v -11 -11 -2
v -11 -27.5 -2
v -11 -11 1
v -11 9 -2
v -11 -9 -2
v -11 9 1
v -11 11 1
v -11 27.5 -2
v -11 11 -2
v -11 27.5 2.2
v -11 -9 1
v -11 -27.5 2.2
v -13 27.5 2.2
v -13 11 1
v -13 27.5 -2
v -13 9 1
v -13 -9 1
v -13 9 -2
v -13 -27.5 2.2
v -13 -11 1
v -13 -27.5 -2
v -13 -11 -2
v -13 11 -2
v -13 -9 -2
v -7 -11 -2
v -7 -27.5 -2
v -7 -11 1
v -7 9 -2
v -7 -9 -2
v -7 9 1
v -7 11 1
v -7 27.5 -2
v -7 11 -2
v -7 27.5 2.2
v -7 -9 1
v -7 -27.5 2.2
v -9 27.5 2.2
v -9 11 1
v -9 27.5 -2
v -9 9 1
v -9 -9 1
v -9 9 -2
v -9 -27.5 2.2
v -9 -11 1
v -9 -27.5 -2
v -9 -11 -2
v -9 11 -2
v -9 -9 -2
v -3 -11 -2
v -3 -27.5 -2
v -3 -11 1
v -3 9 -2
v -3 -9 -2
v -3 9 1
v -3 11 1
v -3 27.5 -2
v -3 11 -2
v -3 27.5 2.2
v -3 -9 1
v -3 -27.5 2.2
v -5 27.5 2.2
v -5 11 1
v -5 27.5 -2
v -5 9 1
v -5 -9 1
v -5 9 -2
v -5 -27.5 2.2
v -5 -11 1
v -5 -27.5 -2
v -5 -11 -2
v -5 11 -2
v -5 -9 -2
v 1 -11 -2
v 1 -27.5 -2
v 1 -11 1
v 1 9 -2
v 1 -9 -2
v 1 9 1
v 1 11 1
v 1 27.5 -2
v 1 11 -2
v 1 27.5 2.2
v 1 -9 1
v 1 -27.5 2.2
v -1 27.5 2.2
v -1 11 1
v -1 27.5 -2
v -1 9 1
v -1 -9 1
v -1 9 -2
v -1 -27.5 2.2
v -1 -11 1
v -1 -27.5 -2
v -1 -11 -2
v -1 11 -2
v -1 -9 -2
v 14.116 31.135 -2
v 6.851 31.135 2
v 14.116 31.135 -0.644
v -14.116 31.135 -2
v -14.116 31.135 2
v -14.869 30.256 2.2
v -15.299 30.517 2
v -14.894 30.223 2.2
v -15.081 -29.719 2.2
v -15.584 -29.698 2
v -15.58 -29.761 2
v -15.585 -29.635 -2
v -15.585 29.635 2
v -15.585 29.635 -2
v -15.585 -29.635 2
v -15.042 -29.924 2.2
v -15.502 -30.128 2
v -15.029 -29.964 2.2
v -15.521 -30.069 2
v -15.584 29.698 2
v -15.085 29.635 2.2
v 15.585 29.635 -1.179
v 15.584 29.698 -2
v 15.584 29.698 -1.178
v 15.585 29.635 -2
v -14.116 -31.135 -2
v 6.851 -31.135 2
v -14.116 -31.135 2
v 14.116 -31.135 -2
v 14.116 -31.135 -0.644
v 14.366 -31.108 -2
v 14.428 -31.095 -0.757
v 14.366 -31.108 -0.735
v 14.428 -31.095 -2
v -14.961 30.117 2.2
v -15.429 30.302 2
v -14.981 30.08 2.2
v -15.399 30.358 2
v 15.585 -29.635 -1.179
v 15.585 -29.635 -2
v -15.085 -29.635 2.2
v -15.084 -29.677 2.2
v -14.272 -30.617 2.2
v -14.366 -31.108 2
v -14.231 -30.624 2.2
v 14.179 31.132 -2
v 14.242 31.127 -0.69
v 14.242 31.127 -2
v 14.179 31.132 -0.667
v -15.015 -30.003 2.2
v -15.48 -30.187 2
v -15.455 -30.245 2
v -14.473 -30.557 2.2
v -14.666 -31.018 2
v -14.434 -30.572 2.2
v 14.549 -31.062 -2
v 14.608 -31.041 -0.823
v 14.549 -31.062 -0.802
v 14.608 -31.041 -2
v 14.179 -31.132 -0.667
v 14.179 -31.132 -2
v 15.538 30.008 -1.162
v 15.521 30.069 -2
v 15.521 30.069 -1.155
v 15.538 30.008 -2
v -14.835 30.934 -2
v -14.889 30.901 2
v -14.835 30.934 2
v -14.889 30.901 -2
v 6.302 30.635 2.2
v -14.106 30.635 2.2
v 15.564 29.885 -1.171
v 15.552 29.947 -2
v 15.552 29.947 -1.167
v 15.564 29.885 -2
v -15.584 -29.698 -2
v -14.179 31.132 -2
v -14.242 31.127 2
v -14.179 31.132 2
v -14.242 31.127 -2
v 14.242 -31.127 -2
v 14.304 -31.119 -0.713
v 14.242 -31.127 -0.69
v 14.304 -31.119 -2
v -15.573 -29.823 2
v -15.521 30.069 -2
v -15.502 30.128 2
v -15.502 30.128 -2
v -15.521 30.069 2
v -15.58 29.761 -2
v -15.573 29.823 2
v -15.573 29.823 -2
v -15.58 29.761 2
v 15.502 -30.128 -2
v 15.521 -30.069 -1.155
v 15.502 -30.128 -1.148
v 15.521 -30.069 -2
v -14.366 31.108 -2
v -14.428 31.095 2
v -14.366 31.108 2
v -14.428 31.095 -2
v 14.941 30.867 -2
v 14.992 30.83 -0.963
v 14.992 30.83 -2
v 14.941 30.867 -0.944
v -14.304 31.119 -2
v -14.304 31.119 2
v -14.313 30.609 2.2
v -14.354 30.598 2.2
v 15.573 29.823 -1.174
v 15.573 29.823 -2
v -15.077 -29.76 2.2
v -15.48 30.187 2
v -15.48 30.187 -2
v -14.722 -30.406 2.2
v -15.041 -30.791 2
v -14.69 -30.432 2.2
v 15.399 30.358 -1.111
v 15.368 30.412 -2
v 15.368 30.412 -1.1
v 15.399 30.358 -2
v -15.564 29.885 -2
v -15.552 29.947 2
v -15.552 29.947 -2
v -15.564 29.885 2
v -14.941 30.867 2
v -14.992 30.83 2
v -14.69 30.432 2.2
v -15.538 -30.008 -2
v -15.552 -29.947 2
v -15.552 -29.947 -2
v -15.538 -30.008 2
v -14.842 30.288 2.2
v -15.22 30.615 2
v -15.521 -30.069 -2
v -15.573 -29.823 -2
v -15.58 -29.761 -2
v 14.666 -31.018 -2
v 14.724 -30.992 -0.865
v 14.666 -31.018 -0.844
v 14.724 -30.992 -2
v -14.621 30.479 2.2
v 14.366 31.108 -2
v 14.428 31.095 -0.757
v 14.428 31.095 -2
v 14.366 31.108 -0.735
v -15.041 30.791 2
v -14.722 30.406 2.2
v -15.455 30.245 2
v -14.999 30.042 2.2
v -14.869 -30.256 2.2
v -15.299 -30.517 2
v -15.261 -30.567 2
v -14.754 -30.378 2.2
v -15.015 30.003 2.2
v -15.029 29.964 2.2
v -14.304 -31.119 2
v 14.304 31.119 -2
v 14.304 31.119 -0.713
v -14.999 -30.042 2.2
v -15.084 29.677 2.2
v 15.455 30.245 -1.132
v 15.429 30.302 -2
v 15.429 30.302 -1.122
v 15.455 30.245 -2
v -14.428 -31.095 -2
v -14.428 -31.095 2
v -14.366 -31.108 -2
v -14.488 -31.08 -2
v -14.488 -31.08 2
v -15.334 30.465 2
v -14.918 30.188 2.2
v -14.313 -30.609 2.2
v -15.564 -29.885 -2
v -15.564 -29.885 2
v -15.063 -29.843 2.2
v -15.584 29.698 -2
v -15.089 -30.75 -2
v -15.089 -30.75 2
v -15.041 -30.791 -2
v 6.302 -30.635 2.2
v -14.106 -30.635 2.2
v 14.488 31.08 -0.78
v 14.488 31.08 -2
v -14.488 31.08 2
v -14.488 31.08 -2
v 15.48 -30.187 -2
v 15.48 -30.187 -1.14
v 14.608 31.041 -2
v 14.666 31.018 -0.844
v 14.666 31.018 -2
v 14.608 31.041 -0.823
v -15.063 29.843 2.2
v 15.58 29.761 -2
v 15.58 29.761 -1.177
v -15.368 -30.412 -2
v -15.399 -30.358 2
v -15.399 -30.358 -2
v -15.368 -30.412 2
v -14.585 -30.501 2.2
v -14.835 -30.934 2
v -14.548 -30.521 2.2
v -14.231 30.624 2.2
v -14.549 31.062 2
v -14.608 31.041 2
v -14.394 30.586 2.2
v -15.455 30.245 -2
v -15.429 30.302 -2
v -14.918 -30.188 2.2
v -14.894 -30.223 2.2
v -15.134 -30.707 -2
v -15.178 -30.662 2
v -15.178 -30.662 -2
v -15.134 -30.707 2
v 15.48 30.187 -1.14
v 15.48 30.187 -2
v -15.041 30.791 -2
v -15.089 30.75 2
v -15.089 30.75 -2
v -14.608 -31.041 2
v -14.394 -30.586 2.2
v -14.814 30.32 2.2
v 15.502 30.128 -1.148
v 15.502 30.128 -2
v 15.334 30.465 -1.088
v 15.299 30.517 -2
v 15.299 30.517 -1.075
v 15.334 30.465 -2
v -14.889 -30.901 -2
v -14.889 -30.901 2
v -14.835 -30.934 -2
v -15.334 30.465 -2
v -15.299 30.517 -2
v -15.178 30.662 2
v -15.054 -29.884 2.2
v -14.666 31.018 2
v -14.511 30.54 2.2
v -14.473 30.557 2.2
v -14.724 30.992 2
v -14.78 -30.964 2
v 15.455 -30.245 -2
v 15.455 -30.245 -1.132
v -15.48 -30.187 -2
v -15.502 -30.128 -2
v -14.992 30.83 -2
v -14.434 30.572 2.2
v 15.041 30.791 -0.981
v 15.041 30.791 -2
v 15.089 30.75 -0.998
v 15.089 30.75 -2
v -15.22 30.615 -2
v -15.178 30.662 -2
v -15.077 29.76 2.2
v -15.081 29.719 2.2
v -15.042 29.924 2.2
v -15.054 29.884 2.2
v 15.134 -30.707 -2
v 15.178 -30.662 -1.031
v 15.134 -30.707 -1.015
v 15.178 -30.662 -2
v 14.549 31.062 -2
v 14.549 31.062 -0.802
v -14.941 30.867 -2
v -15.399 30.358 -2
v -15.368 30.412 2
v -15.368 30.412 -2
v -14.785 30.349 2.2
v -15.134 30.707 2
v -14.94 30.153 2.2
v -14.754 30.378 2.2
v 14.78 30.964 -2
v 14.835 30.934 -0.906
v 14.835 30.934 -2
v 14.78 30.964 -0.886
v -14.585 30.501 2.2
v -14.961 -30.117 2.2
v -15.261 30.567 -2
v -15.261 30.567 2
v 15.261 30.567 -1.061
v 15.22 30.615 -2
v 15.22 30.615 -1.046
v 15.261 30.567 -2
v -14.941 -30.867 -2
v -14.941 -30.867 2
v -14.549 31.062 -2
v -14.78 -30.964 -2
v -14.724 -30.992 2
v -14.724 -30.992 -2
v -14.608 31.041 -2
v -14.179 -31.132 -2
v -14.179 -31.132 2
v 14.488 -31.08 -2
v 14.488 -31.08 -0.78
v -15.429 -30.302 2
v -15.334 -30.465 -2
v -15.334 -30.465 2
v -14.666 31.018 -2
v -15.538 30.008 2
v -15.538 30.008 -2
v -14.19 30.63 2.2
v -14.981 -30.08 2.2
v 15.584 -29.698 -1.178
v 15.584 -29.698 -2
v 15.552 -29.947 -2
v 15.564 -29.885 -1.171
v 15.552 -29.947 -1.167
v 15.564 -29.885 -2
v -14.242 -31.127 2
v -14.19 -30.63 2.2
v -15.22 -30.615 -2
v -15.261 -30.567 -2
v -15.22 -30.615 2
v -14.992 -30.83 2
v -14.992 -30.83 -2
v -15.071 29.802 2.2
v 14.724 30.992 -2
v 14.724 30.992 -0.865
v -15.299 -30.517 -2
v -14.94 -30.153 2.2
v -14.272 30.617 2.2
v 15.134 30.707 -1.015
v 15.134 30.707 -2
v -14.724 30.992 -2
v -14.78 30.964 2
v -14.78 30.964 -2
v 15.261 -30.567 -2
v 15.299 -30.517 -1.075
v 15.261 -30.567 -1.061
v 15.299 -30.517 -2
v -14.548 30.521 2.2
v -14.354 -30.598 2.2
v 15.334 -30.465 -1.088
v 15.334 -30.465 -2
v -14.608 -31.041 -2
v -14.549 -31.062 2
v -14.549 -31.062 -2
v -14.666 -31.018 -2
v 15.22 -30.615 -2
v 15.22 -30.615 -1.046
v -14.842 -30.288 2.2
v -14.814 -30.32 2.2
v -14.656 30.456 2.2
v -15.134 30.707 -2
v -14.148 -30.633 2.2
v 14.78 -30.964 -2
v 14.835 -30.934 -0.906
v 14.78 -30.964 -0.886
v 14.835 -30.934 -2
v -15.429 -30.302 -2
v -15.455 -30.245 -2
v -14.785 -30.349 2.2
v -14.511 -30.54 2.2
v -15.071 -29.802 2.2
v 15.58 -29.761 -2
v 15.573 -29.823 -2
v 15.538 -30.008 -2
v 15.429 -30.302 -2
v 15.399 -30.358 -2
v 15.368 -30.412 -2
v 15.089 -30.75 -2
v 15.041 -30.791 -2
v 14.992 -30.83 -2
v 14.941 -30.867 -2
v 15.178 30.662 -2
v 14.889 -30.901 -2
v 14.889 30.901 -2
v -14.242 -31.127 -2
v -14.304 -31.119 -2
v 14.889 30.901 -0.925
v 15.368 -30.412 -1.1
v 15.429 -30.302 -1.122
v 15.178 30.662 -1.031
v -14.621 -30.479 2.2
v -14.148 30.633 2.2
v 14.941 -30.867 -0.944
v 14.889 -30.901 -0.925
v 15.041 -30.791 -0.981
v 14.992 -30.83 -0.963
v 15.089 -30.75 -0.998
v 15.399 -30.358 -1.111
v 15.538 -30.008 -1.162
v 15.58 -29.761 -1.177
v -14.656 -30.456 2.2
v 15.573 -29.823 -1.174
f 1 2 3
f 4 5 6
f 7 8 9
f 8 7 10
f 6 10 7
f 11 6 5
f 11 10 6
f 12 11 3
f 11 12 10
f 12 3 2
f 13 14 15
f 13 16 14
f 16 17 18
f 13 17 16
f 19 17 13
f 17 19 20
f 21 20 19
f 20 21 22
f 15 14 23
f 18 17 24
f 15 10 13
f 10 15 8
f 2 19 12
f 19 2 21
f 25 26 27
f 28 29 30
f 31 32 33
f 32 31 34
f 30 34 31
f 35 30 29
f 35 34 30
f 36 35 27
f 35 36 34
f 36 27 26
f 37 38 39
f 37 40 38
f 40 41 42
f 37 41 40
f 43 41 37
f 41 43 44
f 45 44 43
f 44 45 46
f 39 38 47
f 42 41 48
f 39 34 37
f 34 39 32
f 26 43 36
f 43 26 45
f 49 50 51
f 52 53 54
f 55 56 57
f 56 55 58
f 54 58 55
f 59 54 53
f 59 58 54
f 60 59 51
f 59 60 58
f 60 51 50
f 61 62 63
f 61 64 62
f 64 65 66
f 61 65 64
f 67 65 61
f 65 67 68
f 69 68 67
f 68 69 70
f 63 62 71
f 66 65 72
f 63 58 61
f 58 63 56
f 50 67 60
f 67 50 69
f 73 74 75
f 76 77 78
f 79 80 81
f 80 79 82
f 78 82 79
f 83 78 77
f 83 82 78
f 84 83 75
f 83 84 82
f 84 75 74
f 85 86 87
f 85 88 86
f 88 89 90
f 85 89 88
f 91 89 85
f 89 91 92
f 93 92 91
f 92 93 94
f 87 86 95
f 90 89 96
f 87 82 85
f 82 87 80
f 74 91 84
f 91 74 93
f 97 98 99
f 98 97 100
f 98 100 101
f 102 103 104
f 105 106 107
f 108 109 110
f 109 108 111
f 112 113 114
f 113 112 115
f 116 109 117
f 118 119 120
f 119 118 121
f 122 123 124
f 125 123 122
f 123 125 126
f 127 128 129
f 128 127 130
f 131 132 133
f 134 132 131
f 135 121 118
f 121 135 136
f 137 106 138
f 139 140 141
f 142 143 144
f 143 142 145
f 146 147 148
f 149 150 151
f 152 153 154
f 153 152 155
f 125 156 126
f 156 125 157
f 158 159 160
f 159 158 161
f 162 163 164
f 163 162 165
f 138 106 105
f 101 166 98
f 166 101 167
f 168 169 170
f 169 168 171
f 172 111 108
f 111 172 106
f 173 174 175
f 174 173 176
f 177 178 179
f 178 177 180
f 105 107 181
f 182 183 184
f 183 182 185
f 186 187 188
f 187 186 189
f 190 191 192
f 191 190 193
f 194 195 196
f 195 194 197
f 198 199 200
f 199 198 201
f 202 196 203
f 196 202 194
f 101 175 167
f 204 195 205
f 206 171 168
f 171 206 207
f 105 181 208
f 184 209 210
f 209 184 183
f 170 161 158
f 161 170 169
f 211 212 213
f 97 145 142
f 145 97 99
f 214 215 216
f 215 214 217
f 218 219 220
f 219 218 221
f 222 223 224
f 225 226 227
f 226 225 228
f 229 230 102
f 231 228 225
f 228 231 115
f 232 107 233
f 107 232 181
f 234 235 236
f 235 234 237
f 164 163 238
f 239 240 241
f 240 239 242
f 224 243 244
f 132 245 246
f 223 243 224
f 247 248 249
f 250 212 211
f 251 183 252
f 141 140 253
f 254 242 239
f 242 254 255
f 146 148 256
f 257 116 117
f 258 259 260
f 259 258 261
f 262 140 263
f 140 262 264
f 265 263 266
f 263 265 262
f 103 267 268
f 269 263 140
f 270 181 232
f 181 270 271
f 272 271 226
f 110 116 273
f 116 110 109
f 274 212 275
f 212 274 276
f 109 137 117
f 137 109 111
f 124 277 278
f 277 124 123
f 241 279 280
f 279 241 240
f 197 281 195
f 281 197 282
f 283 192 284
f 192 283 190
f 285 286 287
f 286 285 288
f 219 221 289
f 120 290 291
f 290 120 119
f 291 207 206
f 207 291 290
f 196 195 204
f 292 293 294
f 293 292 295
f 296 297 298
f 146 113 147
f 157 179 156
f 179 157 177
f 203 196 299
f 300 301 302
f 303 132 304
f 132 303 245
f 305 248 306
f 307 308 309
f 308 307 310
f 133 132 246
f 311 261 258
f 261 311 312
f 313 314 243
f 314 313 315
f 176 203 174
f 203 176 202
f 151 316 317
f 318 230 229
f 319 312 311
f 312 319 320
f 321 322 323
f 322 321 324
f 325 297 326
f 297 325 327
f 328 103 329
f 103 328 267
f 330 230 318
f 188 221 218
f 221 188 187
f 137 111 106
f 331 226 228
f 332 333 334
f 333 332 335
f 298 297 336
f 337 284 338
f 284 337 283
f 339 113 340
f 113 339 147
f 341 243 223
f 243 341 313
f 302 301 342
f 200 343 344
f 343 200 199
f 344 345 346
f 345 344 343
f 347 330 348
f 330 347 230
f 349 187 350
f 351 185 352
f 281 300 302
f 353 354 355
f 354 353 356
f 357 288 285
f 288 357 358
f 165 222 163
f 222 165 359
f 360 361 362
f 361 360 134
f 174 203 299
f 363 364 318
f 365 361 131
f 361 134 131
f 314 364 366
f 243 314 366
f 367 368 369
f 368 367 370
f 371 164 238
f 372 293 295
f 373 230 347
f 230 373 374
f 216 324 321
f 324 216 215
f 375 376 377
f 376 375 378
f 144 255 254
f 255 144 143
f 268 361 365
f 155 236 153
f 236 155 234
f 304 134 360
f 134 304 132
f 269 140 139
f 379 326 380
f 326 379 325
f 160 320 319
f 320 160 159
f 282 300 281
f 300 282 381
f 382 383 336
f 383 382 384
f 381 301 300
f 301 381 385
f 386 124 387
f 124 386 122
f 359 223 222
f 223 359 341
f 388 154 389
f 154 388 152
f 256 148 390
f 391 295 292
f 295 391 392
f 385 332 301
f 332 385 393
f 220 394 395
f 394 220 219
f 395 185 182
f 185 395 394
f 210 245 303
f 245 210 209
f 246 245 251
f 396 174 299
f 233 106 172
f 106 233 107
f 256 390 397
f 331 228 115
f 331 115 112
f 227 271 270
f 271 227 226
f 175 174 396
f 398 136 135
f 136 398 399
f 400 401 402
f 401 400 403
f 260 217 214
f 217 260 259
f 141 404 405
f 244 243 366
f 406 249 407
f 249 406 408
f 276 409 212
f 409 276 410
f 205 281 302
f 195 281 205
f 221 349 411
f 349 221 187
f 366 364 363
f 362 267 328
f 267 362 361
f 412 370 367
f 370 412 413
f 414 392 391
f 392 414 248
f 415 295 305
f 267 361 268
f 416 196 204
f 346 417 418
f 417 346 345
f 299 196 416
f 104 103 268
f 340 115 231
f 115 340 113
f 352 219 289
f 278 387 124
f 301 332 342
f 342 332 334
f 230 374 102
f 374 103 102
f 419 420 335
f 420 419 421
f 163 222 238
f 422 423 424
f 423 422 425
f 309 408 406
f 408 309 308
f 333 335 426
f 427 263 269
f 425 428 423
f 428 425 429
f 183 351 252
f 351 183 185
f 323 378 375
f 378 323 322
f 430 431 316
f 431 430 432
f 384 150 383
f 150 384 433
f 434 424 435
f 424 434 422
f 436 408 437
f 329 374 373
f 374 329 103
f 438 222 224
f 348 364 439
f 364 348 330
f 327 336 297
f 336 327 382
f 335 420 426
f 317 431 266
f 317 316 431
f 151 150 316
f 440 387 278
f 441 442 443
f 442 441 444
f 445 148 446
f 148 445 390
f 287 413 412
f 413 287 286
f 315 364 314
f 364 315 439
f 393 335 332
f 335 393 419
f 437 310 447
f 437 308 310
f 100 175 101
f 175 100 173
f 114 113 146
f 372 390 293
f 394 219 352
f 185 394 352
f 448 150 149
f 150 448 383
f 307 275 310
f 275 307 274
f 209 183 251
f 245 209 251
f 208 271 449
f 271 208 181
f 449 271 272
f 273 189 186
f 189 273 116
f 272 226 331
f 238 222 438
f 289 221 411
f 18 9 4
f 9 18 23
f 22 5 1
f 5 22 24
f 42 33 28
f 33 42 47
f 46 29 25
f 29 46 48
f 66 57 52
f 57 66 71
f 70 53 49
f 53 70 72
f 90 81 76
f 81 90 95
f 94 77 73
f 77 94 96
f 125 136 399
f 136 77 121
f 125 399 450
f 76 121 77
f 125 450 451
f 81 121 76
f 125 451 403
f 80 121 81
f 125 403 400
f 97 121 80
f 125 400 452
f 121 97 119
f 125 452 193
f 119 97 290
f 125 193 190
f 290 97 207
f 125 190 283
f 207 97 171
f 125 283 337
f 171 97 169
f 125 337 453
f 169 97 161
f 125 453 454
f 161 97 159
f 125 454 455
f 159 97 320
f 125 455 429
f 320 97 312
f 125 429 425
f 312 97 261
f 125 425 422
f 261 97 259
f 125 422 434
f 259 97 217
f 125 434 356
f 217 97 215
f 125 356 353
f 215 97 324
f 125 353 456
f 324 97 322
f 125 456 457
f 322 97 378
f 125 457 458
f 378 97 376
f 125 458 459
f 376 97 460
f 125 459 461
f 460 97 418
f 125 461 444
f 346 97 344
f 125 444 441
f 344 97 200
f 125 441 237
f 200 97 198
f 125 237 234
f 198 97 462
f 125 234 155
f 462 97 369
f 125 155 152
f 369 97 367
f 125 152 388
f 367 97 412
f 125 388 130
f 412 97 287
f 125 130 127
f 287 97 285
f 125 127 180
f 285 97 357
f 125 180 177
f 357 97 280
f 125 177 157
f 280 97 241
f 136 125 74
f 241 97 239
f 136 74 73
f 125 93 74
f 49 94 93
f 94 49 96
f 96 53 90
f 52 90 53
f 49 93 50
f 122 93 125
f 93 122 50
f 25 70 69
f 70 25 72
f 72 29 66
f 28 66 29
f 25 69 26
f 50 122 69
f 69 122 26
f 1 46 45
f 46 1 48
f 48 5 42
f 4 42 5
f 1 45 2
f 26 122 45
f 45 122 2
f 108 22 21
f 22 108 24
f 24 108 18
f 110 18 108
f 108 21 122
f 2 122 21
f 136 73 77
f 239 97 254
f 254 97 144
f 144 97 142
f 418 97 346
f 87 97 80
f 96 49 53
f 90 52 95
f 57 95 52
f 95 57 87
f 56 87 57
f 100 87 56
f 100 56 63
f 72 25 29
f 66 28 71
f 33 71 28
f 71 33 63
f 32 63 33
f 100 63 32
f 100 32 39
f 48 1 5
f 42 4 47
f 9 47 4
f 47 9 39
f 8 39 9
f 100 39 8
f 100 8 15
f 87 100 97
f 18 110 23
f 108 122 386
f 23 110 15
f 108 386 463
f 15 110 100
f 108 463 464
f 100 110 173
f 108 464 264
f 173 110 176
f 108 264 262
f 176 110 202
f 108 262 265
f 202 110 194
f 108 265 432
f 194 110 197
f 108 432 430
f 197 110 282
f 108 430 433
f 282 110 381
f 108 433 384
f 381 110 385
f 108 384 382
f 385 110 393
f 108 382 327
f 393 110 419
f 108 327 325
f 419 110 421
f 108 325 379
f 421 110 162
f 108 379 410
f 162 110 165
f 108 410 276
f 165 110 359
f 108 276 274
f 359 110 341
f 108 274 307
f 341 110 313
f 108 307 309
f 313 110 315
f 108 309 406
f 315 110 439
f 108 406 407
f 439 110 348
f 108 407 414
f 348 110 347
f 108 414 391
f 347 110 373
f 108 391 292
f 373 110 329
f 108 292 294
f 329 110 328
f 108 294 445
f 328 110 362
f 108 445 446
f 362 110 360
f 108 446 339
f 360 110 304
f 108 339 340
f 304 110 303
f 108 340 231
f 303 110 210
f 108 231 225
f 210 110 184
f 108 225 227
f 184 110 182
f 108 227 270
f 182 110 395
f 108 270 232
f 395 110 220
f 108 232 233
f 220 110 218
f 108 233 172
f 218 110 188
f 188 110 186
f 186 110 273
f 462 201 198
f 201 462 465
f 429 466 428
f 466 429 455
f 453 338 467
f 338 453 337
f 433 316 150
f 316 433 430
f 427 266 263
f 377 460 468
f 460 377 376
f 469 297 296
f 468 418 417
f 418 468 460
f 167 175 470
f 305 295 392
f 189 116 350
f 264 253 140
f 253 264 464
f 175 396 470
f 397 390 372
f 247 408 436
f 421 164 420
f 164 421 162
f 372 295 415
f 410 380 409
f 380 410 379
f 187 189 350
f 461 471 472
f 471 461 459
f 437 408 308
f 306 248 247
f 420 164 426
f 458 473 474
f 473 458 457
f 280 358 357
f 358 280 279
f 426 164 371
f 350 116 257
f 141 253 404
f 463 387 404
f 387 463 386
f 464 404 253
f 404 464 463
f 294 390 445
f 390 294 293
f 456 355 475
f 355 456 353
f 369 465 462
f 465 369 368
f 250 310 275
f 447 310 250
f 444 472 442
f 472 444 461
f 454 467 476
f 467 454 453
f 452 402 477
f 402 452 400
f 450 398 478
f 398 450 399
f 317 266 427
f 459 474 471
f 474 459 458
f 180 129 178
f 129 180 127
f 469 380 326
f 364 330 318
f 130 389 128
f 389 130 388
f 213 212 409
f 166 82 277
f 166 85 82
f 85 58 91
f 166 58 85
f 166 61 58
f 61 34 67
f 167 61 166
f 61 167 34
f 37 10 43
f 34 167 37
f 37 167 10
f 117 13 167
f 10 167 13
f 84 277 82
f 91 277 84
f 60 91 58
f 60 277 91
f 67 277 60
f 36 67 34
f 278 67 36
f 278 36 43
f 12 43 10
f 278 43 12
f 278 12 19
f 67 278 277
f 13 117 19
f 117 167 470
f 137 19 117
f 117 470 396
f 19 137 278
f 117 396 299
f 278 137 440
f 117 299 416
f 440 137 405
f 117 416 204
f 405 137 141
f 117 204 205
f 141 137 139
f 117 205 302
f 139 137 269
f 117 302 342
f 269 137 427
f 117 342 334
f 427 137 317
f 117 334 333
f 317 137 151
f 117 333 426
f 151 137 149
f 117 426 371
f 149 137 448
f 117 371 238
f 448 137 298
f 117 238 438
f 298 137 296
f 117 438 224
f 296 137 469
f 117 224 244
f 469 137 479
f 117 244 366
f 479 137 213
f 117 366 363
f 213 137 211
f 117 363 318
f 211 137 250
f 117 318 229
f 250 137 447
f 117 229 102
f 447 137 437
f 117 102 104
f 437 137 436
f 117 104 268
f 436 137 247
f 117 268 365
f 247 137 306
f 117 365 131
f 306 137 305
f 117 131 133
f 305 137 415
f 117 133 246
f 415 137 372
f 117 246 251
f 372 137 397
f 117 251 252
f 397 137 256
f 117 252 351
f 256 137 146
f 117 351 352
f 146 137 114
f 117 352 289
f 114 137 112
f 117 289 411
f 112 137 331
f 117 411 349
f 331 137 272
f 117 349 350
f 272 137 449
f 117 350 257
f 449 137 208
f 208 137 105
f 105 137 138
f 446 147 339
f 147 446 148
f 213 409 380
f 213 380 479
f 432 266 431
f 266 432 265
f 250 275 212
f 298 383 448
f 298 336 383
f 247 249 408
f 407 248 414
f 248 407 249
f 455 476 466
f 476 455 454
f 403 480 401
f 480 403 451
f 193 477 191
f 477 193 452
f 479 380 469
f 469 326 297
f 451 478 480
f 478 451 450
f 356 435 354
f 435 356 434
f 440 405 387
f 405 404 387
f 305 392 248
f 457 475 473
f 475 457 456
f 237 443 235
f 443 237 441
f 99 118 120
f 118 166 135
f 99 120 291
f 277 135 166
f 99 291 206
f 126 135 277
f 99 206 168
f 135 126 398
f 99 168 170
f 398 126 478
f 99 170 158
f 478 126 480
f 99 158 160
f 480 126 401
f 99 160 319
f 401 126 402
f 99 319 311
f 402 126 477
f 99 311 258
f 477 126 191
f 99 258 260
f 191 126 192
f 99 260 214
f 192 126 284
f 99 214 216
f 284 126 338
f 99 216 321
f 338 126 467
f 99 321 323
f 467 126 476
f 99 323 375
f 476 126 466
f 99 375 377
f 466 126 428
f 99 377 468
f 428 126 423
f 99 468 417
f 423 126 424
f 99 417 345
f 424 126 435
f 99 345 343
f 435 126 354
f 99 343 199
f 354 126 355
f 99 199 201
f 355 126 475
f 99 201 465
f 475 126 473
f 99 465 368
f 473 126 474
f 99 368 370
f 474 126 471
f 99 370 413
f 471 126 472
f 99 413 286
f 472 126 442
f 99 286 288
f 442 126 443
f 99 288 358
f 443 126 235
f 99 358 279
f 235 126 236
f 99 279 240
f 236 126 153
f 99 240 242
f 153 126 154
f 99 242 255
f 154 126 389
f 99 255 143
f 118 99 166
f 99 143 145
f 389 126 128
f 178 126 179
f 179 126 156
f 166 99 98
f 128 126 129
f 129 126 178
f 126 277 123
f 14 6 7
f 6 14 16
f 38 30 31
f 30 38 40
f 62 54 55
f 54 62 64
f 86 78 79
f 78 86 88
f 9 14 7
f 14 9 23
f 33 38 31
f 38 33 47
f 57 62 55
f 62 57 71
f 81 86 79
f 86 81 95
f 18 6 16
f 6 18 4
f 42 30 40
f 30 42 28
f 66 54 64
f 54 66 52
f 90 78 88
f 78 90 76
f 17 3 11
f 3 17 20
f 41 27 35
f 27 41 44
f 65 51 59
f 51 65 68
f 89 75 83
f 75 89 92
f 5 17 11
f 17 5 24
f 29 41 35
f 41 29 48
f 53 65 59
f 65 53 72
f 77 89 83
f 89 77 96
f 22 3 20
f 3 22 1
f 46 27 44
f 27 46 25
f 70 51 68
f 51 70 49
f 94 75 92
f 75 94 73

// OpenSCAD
// A simple case for the MiSTeryNano Lite  (https://github.com/harbaum/MiSTeryNano)

// Original author: Oliver Jaksch
// CC BY-NC-SA 4.0 (https://creativecommons.org/licenses/by-nc-sa/4.0/)

// Top for the Top :)
difference() {
    $fn=150;
    minkowski() {
        cube([28.17, 59.27, 4], true);
        cylinder(0.2, 1.5);
    }

    // Plate
    translate ([11.6, 0, 2.4]) rotate([0, 20, 0]) cube([10, 62.5, 4], true);

    // Vents
    for (step =[-12:4:0]) translate ([step, 0, 0]) cube([2, 55, 5], true);
}
translate ([-6, 10, -0.5]) cube([15, 2, 3], true);
translate ([-6, -10, -0.5]) cube([15, 2, 3], true);
